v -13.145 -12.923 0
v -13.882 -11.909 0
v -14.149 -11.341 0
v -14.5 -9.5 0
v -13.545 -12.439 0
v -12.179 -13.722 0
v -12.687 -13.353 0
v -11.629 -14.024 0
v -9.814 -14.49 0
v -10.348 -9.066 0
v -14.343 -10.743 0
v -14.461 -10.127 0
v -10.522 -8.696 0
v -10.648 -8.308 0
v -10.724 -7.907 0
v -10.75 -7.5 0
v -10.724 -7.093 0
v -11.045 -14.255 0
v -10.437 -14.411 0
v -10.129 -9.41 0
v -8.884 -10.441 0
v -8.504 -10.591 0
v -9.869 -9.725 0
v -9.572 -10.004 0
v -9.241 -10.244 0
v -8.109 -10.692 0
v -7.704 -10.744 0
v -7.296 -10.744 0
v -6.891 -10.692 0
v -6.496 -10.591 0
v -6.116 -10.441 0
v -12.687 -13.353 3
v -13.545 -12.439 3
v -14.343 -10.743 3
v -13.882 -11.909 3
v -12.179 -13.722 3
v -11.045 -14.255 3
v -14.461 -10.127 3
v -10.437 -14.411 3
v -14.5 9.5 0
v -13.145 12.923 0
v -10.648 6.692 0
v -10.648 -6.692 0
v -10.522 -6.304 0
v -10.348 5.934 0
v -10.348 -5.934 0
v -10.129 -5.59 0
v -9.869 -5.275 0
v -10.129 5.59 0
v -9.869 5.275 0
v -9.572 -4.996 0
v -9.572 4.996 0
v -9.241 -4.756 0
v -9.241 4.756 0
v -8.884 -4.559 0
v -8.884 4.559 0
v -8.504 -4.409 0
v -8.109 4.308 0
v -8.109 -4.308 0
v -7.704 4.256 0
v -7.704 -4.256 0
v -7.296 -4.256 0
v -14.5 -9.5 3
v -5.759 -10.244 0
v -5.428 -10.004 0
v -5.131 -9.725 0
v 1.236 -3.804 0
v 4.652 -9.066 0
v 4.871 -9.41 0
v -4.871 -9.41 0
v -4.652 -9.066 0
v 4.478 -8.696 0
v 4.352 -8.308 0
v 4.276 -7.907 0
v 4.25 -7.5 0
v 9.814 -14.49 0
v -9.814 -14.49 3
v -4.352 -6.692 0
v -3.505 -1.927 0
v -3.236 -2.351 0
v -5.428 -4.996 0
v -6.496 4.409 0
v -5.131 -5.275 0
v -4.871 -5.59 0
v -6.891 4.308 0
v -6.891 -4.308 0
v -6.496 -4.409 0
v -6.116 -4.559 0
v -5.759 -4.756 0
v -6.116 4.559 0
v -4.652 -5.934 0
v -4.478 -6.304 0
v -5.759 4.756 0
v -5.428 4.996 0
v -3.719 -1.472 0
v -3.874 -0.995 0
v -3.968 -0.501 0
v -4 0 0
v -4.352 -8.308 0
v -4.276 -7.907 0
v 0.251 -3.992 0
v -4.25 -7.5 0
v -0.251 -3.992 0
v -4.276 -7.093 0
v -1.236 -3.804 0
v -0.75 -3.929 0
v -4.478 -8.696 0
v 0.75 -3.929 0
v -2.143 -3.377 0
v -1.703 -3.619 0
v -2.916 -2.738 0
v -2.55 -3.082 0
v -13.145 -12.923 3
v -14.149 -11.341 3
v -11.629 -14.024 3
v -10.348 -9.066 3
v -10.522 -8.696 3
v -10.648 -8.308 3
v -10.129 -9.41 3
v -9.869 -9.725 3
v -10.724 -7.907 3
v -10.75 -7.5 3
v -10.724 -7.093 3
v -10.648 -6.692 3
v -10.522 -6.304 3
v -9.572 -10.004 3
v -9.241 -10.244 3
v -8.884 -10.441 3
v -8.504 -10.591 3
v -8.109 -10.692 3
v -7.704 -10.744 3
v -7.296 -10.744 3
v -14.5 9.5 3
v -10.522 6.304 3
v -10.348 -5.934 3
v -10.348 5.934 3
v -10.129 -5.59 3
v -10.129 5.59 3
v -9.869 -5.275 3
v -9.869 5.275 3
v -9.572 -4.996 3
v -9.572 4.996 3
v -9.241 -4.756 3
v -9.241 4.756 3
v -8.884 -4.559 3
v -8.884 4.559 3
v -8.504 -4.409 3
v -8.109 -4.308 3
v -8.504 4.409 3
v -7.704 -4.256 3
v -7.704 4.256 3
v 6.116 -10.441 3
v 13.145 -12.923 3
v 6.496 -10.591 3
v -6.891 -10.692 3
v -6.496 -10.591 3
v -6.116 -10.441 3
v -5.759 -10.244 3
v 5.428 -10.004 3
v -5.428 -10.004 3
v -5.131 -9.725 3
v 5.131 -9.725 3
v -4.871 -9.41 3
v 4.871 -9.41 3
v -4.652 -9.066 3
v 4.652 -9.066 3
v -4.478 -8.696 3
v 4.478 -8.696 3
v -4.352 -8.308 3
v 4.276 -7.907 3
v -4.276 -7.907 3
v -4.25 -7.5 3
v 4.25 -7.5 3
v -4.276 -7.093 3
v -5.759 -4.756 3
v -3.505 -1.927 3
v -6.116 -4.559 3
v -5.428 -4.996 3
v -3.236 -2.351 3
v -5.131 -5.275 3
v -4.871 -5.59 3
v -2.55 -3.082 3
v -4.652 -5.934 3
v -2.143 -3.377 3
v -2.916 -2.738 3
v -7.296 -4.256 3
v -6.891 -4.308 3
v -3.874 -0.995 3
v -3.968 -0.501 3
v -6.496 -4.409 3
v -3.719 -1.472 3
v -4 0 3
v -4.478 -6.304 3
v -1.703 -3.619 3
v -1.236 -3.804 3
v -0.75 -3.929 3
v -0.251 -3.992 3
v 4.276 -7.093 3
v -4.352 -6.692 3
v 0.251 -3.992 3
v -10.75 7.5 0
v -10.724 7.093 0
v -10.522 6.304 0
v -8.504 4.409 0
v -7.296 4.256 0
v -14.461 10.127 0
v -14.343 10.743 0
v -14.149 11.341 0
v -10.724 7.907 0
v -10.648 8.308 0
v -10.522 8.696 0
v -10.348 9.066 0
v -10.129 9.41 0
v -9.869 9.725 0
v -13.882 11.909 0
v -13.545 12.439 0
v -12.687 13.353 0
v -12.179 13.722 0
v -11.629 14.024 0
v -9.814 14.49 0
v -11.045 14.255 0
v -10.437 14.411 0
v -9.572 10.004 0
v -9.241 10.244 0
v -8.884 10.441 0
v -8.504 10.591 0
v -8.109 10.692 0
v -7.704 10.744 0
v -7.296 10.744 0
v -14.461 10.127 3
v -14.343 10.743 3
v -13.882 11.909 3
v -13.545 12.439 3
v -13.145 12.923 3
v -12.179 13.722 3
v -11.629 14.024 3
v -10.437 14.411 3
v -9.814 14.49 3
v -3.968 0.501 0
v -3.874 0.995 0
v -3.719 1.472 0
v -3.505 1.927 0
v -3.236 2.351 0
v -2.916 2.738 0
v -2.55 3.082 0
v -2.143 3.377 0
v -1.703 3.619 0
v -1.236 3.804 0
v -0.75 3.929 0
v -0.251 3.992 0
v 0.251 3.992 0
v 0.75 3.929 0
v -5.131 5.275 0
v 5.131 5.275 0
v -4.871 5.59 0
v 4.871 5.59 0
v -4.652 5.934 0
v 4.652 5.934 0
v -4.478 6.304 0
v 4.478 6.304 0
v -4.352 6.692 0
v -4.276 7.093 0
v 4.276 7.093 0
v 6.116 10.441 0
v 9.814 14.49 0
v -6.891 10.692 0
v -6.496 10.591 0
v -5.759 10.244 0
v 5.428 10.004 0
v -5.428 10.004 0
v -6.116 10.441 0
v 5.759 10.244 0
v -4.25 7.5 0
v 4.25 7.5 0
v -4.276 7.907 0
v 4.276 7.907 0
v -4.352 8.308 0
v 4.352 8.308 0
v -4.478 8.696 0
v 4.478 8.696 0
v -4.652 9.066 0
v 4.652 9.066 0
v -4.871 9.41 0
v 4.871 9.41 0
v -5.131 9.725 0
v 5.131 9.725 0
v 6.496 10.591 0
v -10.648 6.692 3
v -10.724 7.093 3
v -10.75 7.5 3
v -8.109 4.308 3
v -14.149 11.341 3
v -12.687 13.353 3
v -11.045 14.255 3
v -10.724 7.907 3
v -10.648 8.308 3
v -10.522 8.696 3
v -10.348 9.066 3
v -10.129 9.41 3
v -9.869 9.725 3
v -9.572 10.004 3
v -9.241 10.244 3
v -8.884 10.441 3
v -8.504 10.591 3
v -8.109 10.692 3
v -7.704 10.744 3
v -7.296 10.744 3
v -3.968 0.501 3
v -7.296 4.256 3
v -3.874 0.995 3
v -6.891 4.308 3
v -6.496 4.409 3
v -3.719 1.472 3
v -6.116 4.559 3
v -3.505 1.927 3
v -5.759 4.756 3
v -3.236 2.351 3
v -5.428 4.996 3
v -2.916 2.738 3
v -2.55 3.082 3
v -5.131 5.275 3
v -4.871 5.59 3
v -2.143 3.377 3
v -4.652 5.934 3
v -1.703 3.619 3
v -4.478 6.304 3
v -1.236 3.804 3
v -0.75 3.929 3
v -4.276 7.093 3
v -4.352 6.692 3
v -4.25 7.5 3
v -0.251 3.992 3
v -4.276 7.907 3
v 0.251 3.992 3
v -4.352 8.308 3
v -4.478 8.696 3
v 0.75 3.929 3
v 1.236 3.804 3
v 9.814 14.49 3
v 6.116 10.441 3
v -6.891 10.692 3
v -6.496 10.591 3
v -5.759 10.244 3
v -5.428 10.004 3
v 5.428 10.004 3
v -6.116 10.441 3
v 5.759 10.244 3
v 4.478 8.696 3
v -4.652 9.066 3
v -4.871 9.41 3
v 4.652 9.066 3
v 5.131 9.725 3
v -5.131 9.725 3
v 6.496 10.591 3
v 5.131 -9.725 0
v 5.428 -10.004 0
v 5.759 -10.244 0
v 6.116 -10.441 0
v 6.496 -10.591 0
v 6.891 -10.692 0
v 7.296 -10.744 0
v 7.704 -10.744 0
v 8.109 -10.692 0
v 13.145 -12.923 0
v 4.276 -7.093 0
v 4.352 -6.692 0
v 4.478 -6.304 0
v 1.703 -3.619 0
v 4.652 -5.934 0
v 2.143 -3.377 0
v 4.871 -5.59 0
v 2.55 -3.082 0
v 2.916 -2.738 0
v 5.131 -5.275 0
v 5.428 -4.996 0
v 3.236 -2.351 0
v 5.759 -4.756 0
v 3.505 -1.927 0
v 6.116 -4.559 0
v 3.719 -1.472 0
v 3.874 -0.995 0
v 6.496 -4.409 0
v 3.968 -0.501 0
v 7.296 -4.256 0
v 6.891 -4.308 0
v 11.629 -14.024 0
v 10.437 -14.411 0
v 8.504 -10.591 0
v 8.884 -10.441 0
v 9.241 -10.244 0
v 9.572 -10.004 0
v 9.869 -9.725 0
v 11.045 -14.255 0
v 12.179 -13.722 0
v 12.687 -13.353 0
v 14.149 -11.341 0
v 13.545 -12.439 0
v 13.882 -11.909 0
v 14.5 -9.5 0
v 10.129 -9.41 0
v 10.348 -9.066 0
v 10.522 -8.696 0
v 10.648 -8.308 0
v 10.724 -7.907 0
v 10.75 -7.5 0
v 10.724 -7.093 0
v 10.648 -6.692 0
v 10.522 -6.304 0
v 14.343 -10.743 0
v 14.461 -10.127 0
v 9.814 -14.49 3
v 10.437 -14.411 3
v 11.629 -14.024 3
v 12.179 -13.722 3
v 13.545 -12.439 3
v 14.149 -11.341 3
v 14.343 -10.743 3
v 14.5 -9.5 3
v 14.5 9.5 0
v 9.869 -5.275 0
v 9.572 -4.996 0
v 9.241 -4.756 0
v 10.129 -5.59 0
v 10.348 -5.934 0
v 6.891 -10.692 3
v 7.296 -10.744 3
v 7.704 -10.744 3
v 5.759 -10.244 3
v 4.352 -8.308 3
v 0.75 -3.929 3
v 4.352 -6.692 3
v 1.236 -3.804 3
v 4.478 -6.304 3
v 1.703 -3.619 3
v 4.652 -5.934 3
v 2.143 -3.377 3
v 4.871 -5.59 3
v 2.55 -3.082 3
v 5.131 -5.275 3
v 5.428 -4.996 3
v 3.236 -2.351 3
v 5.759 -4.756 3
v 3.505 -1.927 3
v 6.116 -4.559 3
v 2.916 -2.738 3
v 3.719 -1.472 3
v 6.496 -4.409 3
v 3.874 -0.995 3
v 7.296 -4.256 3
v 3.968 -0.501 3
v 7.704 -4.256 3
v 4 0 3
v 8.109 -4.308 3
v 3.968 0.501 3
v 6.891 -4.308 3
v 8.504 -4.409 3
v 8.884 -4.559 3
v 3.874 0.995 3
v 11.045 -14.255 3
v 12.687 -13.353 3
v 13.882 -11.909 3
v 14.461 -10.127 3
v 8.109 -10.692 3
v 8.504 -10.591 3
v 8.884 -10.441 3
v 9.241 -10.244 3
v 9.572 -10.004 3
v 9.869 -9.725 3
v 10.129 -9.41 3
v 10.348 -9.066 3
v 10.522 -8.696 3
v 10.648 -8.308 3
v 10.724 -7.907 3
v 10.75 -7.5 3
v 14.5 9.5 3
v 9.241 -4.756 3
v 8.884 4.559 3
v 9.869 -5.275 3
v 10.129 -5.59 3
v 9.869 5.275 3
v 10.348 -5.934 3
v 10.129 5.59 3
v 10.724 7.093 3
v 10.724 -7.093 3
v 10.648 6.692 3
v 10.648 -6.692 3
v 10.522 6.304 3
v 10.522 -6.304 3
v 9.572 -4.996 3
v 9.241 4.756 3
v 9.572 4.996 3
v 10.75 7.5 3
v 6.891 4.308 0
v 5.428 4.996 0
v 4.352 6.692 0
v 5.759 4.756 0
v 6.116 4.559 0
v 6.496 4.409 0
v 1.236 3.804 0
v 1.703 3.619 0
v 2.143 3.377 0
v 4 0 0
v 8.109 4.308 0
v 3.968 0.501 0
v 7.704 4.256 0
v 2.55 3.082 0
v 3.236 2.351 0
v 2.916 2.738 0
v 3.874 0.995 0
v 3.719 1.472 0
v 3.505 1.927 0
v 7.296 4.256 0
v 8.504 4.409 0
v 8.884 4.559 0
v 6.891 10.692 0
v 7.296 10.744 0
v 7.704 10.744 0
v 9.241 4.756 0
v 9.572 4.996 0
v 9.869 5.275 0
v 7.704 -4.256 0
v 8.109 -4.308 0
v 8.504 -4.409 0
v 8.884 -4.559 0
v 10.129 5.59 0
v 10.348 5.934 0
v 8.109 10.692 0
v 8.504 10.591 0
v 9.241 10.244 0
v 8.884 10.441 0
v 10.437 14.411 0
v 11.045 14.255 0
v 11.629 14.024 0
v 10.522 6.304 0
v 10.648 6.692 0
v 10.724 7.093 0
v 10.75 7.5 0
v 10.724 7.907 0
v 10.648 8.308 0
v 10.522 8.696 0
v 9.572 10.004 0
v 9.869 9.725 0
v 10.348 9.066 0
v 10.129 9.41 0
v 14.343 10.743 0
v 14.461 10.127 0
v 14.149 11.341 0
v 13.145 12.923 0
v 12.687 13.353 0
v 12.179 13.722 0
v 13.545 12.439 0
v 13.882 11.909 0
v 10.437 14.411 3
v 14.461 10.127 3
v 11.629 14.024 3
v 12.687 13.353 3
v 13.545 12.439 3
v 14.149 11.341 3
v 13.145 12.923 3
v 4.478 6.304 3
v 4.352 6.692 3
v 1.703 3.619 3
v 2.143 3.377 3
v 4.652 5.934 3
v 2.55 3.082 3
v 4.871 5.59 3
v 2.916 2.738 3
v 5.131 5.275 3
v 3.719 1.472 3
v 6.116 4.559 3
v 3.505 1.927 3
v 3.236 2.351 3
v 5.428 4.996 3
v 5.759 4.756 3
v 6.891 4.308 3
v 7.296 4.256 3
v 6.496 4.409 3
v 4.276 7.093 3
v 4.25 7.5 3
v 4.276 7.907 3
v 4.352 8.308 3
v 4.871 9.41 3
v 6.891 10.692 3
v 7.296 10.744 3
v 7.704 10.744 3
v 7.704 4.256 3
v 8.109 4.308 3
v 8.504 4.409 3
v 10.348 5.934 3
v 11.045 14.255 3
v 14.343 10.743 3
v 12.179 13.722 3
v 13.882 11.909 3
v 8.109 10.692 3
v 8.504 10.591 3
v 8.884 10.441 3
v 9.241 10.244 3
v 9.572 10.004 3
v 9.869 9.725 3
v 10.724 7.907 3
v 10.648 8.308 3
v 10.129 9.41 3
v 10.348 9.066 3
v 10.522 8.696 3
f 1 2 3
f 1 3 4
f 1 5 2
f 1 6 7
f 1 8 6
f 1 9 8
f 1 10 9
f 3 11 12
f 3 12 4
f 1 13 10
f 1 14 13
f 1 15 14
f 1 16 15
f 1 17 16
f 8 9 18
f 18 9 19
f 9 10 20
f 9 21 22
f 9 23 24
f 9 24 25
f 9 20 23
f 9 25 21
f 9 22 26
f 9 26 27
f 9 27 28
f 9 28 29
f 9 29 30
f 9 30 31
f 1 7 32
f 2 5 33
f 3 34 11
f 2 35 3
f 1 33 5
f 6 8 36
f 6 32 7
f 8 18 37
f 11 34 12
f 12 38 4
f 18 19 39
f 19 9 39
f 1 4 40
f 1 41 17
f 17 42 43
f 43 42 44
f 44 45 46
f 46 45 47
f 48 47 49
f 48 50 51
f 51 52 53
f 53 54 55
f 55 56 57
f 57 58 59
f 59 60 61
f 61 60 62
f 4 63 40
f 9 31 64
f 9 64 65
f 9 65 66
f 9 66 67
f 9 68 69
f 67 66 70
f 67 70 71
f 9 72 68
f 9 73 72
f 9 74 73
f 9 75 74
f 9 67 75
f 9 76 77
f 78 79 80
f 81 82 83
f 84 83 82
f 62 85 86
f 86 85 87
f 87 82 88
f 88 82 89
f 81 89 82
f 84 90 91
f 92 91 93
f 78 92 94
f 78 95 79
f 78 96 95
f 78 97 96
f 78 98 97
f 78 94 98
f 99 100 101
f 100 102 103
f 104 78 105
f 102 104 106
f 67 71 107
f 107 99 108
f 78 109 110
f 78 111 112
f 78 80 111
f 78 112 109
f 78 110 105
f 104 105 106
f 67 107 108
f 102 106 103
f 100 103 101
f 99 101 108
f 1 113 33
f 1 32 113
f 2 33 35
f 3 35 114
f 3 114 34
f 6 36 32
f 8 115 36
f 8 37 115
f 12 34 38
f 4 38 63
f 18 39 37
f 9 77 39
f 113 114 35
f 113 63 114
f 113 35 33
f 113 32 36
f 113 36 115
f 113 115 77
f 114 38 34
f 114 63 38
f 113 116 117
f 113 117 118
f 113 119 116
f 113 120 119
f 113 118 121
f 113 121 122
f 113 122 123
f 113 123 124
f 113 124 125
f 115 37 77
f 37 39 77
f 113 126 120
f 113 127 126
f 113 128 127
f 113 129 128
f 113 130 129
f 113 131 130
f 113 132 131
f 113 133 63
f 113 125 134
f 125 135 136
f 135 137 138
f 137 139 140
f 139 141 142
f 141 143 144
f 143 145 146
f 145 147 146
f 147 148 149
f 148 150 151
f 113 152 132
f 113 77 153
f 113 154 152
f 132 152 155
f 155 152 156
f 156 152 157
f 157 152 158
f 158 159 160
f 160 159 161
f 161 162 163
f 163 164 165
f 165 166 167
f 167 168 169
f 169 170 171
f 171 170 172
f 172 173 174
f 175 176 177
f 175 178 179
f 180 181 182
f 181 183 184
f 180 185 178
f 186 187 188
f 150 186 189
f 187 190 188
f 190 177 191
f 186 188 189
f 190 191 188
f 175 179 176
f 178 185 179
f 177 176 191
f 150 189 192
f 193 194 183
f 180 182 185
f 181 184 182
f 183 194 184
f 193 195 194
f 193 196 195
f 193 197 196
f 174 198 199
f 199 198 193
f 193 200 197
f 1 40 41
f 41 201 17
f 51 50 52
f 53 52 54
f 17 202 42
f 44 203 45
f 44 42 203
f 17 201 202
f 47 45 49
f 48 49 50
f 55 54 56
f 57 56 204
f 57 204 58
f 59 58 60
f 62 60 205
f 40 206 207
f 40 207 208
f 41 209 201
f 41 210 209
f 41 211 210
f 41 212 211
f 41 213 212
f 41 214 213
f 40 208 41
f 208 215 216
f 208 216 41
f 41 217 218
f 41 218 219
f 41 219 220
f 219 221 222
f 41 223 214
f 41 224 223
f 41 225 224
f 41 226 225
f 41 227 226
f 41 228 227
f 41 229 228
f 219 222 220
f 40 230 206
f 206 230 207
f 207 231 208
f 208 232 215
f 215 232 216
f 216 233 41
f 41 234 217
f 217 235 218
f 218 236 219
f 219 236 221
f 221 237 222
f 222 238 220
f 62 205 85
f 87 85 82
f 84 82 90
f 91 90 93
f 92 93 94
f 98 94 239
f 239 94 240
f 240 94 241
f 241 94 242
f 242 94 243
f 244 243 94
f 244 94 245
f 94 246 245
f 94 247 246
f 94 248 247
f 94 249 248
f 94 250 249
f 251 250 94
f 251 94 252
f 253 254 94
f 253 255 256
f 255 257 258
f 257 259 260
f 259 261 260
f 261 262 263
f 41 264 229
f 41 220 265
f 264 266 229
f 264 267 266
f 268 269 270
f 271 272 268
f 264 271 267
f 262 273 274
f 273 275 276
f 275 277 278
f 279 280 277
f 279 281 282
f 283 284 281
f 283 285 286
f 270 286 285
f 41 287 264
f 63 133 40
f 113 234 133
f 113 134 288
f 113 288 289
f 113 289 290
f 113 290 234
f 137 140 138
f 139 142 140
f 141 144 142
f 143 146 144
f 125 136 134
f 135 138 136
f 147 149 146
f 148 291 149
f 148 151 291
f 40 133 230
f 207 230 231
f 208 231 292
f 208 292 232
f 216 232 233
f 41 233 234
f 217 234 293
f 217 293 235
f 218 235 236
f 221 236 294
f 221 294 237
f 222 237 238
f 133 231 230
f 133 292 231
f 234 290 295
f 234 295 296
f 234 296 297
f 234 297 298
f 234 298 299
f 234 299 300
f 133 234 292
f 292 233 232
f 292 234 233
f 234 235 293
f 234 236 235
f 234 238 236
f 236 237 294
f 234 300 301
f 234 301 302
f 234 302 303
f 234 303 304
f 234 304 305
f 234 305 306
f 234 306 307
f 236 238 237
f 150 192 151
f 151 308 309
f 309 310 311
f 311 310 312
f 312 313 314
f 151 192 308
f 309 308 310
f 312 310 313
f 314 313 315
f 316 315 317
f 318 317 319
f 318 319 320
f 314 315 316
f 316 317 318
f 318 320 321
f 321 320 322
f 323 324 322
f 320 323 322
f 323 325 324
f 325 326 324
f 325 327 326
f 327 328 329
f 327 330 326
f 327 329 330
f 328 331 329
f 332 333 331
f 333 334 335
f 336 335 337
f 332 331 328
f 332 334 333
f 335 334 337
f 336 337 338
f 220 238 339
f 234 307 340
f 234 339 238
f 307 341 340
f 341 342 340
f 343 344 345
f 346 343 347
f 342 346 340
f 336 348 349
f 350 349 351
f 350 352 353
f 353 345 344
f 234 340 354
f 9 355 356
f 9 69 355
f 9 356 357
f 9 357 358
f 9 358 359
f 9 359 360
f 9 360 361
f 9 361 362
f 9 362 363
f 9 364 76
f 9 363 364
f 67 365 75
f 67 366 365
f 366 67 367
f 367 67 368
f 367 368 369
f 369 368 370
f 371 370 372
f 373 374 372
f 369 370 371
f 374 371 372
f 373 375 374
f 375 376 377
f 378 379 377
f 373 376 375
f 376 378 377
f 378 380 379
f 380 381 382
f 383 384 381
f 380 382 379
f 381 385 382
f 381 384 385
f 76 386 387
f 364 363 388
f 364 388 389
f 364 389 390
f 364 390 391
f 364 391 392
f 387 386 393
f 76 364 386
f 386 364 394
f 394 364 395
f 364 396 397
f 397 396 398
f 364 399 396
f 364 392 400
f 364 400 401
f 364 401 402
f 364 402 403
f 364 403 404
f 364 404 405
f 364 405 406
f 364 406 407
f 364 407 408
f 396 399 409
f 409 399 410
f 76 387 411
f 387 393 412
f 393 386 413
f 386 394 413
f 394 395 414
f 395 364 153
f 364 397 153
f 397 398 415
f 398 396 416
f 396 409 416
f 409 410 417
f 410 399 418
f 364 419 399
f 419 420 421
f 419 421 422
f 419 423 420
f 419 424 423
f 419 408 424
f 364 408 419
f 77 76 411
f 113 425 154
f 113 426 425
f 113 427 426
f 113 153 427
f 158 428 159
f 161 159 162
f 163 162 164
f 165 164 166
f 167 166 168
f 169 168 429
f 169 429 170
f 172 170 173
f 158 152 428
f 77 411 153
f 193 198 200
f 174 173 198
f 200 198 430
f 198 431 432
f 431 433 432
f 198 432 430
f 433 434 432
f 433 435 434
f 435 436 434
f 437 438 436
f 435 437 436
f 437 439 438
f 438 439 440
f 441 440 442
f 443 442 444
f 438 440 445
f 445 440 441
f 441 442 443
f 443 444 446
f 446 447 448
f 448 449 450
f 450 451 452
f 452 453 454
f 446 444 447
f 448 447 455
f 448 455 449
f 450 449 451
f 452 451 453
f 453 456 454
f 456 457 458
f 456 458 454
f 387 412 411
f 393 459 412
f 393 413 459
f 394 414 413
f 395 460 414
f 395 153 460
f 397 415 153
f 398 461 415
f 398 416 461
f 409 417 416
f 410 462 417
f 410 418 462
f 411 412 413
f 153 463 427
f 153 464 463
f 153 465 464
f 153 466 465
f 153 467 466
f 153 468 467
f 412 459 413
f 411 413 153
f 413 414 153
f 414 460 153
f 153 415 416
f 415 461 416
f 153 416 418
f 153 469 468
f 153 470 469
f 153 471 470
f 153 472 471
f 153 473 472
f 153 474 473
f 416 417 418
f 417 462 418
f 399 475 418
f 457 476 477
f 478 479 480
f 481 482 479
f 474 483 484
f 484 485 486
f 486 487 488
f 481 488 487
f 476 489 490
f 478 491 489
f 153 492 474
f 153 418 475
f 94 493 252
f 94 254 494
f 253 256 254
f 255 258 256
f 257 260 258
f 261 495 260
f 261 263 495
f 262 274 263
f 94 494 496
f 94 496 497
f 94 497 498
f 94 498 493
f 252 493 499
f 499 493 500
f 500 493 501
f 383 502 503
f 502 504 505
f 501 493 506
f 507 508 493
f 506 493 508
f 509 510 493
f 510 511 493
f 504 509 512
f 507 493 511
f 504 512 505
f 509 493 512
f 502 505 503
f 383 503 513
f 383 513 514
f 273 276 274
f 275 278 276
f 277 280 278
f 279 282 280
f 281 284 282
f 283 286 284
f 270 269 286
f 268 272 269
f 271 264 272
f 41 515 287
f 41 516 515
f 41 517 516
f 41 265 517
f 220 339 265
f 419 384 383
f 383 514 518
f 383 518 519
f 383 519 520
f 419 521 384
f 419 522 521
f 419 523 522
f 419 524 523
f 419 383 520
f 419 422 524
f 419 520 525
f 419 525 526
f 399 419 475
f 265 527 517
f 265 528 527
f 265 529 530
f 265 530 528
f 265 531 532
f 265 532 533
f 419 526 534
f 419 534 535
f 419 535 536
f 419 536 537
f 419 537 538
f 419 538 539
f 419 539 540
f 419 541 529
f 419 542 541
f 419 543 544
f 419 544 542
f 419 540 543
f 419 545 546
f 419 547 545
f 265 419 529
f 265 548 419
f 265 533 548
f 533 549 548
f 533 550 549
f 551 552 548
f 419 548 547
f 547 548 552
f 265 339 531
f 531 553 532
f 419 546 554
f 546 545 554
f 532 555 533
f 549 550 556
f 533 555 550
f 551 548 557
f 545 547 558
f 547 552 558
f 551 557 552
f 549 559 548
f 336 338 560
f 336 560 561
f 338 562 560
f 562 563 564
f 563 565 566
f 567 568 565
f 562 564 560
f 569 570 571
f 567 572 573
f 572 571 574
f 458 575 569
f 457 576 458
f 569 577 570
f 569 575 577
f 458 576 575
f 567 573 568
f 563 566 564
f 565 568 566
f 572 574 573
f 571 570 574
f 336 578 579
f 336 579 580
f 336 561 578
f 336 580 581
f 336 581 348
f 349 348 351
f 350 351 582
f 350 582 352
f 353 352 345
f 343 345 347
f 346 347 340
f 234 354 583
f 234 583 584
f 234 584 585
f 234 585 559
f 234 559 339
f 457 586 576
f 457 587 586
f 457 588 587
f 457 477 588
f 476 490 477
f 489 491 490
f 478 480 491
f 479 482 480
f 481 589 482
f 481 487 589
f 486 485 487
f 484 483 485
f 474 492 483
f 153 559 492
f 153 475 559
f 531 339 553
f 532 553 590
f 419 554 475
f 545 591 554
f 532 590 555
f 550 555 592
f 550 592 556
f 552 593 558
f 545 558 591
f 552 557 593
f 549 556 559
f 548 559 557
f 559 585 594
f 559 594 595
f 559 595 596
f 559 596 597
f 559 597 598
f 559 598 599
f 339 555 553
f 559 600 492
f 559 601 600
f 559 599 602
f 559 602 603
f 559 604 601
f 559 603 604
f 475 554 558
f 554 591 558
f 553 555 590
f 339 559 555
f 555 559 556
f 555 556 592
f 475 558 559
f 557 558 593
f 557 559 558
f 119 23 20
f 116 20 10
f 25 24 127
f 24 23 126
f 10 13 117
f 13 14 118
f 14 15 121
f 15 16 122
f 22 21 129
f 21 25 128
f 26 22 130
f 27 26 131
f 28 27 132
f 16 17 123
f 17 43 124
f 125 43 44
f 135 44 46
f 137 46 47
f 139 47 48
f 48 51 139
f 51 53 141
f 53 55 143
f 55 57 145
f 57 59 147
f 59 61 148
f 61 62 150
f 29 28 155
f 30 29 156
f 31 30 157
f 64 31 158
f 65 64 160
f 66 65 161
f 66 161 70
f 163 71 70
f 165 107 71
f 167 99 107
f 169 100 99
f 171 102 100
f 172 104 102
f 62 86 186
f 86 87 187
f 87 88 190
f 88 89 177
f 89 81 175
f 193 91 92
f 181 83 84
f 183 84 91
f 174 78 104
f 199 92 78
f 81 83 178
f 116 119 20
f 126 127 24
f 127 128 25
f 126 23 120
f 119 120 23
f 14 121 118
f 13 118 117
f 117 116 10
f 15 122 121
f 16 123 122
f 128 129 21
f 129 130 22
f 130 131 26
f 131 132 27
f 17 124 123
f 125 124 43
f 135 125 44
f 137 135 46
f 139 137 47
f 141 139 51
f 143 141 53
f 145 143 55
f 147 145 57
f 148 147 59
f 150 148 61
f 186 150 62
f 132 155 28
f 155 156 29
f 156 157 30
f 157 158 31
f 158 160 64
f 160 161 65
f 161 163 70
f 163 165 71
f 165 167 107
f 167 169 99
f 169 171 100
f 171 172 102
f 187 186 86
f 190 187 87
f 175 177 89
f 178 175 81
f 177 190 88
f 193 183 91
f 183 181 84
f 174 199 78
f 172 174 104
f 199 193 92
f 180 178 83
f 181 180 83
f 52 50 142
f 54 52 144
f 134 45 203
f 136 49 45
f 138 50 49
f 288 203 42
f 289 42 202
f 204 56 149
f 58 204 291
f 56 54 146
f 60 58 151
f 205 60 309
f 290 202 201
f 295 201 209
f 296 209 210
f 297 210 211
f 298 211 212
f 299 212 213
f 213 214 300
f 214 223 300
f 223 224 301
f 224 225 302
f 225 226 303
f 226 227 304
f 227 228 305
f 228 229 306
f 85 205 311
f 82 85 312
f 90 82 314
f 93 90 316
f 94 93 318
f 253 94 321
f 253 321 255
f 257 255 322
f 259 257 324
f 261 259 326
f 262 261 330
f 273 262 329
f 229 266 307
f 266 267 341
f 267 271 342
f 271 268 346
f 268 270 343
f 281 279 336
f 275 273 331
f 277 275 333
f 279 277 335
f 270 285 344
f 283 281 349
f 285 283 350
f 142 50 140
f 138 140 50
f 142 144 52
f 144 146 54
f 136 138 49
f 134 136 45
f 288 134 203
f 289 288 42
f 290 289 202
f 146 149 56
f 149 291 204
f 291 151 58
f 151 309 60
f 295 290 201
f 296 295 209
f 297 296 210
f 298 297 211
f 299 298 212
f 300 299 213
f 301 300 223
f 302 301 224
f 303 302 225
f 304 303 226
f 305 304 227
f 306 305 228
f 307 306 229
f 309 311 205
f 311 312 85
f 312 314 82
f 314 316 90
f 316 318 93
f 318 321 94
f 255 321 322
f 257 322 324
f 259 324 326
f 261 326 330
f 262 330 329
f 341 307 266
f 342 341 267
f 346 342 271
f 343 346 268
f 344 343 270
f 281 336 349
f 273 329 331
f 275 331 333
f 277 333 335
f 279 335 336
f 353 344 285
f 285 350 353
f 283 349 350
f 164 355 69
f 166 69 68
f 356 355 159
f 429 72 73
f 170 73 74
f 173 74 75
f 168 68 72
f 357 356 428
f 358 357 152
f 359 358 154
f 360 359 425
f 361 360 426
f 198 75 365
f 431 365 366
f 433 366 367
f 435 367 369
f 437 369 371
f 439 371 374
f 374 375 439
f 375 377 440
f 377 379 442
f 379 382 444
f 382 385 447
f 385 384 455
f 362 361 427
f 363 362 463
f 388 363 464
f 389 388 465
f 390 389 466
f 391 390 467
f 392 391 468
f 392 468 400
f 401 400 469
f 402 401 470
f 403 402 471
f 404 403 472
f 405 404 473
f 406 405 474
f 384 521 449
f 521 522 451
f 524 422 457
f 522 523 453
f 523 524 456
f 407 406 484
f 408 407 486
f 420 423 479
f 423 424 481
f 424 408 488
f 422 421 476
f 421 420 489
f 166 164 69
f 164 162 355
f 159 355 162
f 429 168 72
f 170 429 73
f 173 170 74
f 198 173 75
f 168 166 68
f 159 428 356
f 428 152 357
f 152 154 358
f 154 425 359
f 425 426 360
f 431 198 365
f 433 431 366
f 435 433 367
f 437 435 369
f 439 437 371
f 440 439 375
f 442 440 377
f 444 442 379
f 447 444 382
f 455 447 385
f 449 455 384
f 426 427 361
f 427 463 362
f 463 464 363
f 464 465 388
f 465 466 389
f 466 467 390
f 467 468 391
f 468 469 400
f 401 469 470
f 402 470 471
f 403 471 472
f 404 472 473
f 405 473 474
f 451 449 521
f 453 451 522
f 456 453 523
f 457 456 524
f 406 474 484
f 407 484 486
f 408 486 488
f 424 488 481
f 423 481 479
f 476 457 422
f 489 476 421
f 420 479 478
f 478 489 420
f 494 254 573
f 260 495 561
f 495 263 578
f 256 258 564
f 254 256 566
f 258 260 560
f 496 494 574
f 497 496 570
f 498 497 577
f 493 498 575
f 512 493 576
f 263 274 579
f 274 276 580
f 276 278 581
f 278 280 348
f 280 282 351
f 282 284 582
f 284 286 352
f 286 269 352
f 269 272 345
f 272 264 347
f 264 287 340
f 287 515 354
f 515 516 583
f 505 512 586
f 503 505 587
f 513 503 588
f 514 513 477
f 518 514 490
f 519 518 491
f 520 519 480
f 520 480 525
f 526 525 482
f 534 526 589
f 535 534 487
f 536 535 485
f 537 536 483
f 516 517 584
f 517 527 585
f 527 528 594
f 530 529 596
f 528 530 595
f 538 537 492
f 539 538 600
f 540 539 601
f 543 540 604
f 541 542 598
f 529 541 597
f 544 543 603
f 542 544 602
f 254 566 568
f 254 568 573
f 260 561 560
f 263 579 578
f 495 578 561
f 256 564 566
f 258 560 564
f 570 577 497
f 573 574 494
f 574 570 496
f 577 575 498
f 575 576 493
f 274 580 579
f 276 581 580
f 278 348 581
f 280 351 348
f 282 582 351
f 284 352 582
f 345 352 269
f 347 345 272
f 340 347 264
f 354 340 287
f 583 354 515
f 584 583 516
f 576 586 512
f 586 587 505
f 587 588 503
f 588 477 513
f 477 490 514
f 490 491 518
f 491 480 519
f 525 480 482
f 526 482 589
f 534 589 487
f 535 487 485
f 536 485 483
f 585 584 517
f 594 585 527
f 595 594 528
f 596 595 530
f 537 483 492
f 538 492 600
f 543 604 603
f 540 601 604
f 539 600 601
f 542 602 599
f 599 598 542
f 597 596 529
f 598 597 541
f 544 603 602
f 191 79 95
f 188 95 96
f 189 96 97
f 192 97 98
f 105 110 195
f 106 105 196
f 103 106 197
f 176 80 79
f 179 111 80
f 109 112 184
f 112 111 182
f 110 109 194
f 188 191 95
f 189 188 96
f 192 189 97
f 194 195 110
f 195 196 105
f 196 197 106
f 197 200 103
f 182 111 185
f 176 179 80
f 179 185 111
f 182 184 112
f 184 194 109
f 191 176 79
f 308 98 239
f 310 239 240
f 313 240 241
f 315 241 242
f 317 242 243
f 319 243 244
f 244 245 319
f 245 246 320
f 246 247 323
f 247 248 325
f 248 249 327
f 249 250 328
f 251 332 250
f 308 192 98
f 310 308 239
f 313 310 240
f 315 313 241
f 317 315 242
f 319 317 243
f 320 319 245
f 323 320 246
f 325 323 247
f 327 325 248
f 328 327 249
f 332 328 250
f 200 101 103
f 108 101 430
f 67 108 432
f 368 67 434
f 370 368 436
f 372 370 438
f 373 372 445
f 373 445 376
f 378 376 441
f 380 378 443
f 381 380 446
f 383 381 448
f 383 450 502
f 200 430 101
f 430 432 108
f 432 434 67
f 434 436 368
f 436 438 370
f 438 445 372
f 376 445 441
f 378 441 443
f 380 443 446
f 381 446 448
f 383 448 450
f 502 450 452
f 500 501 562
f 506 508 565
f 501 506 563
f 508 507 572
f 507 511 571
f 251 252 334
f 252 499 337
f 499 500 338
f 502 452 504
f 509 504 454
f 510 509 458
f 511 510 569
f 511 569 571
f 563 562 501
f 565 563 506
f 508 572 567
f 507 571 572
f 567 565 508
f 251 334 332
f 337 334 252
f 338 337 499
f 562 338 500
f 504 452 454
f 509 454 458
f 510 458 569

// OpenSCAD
$fn = 50;

difference() {
	union() {
		hull() {
			translate(v = [-9.5, 9.5, 0]) {
				cylinder(h = 3, r = 5);
			}
			translate(v = [9.5, 9.5, 0]) {
				cylinder(h = 3, r = 5);
			}
			translate(v = [-9.5, -9.5, 0]) {
				cylinder(h = 3, r = 5);
			}
			translate(v = [9.5, -9.5, 0]) {
				cylinder(h = 3, r = 5);
			}
		}
	}
	union() {
		translate(v = [-7.5, -7.5, 0]) {
			cylinder(h = 3, r = 3.25);
		}
		translate(v = [-7.5, 7.5, 0]) {
			cylinder(h = 3, r = 3.25);
		}
		translate(v = [7.5, -7.5, 0]) {
			cylinder(h = 3, r = 3.25);
		}
		translate(v = [7.5, 7.5, 0]) {
			cylinder(h = 3, r = 3.25);
		}
		cylinder(h = 3, r = 4.0);
	}
}
